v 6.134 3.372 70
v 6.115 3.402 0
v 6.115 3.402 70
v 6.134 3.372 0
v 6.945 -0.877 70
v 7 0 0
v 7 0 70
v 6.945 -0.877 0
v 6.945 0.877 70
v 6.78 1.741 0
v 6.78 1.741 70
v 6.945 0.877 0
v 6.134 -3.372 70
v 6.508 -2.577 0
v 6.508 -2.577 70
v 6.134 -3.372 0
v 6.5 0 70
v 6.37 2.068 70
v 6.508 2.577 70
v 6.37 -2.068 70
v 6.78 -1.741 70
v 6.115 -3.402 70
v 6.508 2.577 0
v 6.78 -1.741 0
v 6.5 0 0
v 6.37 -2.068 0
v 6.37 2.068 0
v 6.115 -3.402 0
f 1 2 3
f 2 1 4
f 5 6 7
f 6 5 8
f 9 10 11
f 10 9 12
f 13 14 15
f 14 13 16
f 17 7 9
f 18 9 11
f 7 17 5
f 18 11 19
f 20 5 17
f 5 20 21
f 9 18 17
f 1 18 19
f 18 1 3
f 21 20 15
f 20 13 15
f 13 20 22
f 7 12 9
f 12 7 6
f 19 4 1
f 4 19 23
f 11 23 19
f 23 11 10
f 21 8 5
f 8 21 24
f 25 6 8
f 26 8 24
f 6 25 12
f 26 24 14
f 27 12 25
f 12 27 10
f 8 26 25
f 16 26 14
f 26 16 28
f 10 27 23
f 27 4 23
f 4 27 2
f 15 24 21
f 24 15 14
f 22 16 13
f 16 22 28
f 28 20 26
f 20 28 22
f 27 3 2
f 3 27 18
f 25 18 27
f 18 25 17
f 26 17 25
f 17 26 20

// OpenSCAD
$fn = 50;


difference() {
	union() {
		cylinder(h = 70, r = 7.0000000000);
		translate(v = [-13.0000000000, 0, 0]) {
			cylinder(h = 70, r = 7.0000000000);
		}
	}
	union() {
		cylinder(h = 70, r = 3.2500000000);
		cylinder(h = 70, r = 1.8000000000);
		cylinder(h = 70, r = 1.8000000000);
		cylinder(h = 70, r = 1.8000000000);
		translate(v = [-17.5000000000, 0, 0]) {
			hull() {
				translate(v = [-3.7500000000, 0.0000000000, 0]) {
					cylinder(h = 70, r = 10.5000000000);
				}
				translate(v = [3.7500000000, 0.0000000000, 0]) {
					cylinder(h = 70, r = 10.5000000000);
				}
				translate(v = [-3.7500000000, -0.0000000000, 0]) {
					cylinder(h = 70, r = 10.5000000000);
				}
				translate(v = [3.7500000000, -0.0000000000, 0]) {
					cylinder(h = 70, r = 10.5000000000);
				}
			}
		}
		translate(v = [-10.0000000000, 0, 0.0000000000]) {
			cylinder(h = 70, r = 16.5000000000);
		}
	}
}
